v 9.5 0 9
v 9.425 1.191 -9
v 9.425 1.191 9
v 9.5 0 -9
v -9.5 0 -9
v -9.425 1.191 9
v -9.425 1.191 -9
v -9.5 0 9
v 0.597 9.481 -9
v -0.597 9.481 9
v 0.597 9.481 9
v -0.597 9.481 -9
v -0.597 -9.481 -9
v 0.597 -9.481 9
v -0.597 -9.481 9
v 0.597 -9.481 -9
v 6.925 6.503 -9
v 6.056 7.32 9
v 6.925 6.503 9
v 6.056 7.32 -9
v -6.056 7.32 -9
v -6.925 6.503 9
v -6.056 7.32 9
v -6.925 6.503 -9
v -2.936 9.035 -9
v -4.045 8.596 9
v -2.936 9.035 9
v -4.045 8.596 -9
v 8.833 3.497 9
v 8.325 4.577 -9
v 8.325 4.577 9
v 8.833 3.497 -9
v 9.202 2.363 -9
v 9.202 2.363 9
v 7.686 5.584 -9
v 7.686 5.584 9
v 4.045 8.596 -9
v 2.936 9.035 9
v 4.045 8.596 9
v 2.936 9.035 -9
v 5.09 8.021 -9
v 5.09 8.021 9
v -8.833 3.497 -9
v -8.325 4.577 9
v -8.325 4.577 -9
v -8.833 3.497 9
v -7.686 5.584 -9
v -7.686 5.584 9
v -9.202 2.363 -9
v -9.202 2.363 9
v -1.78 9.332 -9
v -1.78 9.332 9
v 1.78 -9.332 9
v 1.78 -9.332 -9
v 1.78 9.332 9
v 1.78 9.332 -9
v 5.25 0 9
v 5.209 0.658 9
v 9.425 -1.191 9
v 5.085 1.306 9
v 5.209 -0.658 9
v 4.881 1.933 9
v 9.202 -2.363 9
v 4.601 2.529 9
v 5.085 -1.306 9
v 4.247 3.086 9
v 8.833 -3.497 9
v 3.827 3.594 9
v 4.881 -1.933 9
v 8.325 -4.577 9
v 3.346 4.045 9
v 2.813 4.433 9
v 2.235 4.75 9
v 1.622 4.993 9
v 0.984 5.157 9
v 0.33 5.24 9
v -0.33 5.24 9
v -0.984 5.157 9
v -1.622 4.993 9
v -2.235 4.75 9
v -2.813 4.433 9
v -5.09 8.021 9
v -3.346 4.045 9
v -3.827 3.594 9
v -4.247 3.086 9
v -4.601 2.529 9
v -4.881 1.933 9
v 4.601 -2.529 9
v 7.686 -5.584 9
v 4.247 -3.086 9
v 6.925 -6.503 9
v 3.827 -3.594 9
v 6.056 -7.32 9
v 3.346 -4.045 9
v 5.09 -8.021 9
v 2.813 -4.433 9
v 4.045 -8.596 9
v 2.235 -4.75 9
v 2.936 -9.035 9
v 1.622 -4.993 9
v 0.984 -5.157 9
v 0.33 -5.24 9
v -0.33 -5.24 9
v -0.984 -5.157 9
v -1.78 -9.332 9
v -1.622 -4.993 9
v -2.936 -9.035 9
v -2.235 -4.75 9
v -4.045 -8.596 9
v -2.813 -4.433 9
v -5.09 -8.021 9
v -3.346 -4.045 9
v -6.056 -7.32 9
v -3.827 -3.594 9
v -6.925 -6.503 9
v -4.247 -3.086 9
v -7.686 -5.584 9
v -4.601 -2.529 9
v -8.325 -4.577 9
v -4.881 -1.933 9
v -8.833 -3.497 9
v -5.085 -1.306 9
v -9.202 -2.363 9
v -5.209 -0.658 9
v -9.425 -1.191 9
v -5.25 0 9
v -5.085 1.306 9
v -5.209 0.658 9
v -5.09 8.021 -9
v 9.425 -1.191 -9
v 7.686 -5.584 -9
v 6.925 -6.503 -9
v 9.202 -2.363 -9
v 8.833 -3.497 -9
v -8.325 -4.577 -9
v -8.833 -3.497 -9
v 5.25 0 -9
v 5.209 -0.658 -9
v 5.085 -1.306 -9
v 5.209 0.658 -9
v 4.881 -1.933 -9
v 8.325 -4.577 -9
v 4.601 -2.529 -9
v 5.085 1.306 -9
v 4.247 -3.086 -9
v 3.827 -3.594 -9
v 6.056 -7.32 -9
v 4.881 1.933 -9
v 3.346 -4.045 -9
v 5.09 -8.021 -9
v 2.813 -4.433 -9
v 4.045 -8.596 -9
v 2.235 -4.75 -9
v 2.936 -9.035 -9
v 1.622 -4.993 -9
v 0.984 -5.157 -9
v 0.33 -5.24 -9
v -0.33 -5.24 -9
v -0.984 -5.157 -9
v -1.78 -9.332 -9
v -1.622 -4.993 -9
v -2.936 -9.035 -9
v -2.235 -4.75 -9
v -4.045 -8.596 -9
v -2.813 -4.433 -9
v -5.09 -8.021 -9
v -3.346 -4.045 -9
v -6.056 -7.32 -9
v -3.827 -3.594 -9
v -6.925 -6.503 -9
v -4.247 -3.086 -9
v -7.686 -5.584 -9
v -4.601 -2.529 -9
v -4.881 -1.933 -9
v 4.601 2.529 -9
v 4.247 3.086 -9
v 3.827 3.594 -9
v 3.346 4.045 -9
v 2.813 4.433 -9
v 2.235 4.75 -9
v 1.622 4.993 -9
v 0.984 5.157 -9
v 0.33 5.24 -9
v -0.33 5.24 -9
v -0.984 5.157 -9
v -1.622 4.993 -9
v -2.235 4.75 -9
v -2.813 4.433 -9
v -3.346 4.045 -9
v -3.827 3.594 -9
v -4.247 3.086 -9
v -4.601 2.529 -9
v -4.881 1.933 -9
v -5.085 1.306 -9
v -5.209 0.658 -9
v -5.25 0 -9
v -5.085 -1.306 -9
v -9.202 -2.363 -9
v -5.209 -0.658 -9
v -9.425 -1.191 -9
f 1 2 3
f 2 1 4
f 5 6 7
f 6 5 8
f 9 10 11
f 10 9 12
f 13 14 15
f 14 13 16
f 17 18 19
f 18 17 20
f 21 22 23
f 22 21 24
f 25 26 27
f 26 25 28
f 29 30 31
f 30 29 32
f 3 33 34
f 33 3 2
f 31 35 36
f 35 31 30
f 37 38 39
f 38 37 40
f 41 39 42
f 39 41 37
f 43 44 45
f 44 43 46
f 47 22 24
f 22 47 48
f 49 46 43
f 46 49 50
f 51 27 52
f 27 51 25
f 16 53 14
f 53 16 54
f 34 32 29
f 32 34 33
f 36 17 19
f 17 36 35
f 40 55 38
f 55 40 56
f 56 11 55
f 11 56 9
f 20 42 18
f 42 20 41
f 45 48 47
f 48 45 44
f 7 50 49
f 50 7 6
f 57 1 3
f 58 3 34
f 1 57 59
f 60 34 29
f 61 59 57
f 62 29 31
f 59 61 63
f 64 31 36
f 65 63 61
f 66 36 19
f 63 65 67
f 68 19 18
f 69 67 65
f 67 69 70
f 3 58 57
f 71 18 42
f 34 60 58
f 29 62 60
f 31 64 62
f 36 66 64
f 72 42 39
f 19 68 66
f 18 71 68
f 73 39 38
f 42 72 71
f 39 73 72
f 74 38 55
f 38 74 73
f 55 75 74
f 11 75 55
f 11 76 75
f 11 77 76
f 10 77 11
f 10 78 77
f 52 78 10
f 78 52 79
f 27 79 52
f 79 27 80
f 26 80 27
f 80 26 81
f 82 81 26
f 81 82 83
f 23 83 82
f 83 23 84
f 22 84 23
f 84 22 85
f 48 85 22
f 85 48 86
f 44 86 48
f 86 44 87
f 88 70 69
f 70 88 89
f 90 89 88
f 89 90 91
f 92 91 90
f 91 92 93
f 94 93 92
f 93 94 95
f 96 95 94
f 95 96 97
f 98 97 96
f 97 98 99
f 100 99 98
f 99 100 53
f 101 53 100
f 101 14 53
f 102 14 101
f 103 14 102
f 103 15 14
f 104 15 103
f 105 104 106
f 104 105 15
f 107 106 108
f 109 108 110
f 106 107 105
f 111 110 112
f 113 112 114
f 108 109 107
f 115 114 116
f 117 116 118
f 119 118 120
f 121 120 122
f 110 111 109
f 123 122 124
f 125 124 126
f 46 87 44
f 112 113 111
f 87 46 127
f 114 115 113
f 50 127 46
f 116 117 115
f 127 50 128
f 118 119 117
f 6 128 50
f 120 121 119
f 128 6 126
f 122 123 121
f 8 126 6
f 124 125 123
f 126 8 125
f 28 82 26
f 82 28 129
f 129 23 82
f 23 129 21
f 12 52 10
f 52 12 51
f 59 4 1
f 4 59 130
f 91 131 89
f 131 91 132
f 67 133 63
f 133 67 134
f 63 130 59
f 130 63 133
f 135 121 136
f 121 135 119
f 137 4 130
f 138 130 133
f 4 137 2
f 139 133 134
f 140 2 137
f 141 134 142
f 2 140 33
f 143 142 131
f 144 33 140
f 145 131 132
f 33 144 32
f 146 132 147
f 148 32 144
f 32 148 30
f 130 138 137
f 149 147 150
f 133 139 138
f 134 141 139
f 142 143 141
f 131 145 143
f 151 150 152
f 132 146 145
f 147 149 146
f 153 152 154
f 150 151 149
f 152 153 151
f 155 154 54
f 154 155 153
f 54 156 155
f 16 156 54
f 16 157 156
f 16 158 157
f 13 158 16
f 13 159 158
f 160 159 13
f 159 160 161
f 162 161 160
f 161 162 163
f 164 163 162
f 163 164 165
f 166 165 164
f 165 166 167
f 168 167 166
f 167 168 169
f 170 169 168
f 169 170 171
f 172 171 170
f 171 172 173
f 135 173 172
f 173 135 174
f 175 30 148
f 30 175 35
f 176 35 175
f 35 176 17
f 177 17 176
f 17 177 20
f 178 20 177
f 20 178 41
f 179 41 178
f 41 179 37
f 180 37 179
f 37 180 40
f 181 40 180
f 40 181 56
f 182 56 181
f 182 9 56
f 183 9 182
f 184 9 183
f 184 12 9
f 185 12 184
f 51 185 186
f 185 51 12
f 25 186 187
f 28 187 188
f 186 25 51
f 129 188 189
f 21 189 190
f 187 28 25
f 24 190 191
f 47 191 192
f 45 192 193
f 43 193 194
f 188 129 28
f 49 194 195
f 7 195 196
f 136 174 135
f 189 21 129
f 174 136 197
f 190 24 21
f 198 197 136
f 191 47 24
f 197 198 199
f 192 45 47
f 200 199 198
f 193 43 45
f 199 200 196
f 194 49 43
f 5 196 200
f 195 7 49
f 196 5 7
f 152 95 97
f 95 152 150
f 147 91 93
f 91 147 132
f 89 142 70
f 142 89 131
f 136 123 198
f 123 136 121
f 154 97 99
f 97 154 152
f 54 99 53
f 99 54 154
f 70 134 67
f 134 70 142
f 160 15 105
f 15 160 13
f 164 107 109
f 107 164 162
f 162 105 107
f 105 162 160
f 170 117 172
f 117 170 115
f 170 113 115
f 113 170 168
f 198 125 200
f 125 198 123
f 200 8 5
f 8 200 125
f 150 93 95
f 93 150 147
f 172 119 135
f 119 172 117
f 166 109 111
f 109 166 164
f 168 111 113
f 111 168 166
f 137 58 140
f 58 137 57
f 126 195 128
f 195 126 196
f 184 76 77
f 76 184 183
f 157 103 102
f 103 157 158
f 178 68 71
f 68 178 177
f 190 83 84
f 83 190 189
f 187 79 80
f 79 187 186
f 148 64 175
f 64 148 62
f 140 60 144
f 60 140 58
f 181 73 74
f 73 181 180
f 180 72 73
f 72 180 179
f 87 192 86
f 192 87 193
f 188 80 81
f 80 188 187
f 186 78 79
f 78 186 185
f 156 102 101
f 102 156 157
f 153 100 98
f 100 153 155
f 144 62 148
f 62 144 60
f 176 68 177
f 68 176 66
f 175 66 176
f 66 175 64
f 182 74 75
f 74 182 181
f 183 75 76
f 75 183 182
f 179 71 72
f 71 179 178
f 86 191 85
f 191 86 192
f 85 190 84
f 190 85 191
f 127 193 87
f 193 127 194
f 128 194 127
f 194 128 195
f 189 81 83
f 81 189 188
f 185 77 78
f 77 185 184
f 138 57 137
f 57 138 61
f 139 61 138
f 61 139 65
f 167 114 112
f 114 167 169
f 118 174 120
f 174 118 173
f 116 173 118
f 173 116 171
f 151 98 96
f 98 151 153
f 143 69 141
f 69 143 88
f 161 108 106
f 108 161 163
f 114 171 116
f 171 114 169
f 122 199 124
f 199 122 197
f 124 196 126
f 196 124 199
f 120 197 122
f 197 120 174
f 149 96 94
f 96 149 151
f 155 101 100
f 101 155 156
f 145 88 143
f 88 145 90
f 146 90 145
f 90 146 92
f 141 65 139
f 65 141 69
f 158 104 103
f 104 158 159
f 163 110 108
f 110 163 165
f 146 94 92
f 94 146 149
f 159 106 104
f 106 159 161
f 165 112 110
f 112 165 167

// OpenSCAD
$fn = 50;


difference() {
	union() {
		translate(v = [0, 0, -9.0000000000]) {
			cylinder(h = 18, r = 9.5000000000);
		}
	}
	union() {
		translate(v = [0, 0, -100.0000000000]) {
			cylinder(h = 200, r = 5.2500000000);
		}
	}
}
